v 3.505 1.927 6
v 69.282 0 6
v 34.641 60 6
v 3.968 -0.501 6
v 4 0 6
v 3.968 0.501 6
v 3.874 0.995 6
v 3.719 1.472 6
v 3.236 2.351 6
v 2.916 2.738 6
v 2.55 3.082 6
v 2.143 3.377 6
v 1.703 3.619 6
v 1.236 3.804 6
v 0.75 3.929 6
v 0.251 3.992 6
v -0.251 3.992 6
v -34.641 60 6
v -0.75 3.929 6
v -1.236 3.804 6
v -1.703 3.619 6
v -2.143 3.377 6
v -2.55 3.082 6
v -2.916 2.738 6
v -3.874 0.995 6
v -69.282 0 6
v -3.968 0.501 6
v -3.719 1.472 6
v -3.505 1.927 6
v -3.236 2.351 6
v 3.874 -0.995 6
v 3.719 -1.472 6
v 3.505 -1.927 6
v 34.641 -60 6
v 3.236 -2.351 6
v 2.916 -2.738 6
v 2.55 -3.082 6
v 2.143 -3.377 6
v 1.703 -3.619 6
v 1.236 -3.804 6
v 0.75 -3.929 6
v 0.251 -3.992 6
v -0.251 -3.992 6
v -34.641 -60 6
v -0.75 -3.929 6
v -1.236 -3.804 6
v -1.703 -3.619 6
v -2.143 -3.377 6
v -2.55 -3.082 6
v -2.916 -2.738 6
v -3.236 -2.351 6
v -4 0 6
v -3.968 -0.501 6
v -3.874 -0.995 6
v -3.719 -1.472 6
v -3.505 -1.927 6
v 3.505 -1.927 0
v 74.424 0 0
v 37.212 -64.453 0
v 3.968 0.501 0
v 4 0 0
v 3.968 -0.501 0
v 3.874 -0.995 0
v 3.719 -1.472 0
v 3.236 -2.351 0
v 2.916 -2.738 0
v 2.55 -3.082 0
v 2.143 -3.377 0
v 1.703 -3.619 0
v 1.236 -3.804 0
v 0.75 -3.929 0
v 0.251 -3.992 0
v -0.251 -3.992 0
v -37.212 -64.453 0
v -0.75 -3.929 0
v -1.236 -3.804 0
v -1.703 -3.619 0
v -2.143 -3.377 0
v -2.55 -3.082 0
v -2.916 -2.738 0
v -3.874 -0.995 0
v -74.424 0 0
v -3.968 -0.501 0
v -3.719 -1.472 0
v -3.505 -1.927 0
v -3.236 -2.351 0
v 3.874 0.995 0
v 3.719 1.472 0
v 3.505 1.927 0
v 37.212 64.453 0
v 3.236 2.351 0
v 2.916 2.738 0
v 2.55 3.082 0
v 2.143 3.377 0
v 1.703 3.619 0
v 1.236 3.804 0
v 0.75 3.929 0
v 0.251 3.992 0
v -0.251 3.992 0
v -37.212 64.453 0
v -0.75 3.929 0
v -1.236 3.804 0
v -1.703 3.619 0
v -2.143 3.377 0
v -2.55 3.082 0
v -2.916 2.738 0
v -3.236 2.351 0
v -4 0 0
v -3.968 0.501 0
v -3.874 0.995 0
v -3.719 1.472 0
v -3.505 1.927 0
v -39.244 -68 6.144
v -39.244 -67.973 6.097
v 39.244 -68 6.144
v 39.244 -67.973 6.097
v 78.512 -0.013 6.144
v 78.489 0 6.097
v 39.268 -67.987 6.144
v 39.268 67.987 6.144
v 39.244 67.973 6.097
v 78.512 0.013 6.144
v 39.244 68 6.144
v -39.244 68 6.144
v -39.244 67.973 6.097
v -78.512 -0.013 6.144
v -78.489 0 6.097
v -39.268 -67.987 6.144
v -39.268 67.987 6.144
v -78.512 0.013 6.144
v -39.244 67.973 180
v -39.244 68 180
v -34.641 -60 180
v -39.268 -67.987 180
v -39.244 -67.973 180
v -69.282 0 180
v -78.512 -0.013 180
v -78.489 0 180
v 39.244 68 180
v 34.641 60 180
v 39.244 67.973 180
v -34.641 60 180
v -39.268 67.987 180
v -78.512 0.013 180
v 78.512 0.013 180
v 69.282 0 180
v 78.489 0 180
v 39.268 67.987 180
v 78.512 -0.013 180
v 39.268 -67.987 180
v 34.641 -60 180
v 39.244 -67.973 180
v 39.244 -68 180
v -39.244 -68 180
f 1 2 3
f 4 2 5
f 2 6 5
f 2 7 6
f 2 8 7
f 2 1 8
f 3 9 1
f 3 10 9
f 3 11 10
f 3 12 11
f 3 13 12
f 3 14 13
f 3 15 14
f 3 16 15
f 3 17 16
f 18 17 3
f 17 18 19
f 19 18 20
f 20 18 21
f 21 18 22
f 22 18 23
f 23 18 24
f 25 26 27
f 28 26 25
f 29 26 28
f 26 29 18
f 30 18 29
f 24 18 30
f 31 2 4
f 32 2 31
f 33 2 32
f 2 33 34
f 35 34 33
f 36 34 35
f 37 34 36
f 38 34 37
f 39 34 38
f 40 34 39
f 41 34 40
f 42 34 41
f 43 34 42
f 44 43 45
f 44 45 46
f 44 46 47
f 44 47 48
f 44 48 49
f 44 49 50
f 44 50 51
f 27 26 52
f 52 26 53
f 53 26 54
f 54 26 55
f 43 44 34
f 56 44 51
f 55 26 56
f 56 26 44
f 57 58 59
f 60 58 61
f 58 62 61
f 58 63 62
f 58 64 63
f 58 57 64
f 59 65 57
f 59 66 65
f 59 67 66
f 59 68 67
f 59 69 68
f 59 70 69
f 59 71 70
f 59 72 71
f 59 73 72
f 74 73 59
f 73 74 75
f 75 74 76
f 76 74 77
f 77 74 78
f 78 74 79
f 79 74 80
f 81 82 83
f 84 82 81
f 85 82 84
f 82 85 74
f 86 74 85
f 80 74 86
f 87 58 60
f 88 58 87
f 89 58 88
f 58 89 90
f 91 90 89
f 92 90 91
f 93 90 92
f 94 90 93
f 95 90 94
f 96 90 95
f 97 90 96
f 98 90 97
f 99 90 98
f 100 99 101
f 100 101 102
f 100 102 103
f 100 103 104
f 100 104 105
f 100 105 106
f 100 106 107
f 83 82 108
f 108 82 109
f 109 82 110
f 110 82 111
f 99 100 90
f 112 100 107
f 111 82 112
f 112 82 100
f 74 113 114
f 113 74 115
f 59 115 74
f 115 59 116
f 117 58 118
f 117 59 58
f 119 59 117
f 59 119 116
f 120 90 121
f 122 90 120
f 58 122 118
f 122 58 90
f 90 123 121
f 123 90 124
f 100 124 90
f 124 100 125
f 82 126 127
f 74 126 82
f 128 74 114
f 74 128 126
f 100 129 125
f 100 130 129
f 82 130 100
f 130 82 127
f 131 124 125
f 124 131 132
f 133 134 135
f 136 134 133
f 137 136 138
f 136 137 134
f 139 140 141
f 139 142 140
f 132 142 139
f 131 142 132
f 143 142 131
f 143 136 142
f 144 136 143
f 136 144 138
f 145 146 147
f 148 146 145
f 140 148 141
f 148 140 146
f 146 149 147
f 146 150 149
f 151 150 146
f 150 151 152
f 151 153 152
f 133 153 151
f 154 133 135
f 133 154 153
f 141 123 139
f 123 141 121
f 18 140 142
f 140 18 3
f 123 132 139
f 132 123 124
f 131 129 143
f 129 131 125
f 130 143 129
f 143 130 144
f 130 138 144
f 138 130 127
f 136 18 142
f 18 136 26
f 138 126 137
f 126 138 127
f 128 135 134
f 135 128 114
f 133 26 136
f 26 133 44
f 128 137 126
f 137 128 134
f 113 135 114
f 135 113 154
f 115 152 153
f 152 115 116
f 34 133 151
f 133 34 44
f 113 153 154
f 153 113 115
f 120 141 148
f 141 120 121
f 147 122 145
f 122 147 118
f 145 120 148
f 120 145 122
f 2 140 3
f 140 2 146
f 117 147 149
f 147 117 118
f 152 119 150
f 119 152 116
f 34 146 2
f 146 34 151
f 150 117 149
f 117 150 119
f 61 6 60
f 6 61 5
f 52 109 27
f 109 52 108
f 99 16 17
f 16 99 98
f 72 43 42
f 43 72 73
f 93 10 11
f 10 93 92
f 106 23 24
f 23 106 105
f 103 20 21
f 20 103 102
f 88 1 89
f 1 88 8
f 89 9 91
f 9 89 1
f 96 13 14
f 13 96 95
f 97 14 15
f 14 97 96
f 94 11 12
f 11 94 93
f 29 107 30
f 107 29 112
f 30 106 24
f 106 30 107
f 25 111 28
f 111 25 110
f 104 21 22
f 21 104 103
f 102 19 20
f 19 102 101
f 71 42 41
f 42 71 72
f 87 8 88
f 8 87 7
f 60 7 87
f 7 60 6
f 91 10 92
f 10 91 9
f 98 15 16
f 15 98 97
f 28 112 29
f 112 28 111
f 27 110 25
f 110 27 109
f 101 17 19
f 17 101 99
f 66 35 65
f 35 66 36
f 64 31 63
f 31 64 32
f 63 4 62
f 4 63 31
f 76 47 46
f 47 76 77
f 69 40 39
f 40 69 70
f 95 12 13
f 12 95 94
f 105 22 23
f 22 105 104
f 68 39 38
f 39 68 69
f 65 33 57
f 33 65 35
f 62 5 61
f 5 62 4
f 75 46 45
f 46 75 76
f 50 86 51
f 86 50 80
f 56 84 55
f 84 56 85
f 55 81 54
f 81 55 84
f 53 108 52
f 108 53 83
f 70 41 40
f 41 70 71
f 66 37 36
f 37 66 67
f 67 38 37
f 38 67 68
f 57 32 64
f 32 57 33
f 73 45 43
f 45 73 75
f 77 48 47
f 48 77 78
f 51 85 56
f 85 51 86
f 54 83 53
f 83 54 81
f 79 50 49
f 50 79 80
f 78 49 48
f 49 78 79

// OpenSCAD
 // Jamison Hunter
 // hex_planter_tall
 // This is the large sized hex planter from OpenGarden
 
difference() {
union() {
difference() {
union() {
union() {
difference() {
union() {
difference() {
// generating the floor
    
translate([0, 0, 3])
cube([152, 152, 6], center = true);

// shaver 1

scale([1.125, 1.125, 1.125])
translate([0, 0, -1])
union() {

translate([0, 64, 45])
cube([55.5*sqrt(2), 8, 90], center = true );

rotate([0, 0, 60])
translate([0, 64, 45])
cube([55.5*sqrt(2), 8, 90], center = true );

rotate([0, 0, 120])
translate([0, 64, 45])
cube([55.5*sqrt(2), 8, 90], center = true );

rotate([0, 0, 180])
translate([0, 64, 45])
cube([55.5*sqrt(2), 8, 90], center = true );

rotate([0, 0, -60])
translate([0, 64, 45])
cube([55.5*sqrt(2), 8, 90], center = true );

rotate([0, 0,-120])
translate([0, 64, 45])
cube([55.5*sqrt(2), 8, 90], center = true );

}
}
}

// shaver 2

union() {
rotate([0, 0, 30])
translate([100, 0, -1])
cube([50, 90, 20], center = true);

rotate([0, 0, -30])
translate([100, 0, -1])
cube([50, 90, 20], center = true);

rotate([0, 0, 150])
translate([100, 0, -1])
cube([50, 90, 20], center = true);

rotate([0, 0, -150])
translate([100, 0, -1])
cube([50, 90, 20], center = true);

}
}
}

// walls
union() {

translate([0, 64, 90])
cube([55.5*sqrt(2), 8, 180], center = true );

rotate([0, 0, 60])
translate([0, 64, 90])
cube([55.5*sqrt(2), 8, 180], center = true );

rotate([0, 0, 120])
translate([0, 64, 90])
cube([55.5*sqrt(2), 8, 180], center = true );

rotate([0, 0, 180])
translate([0, 64, 90])
cube([55.5*sqrt(2), 8, 180], center = true );

rotate([0, 0, -60])
translate([0, 64, 90])
cube([55.5*sqrt(2), 8, 180], center = true );

rotate([0, 0,-120])
translate([0, 64, 90])
cube([55.5*sqrt(2), 8, 180], center = true );

}
}

// shaver 3
translate([0, 0, -8])
scale([1, 1, 2.5])
union() {
cylinder(r = 4, h = 130, center = true, $fn = 50);


    
}
}
}

// shaver 4


union() {
    
translate([0, -76, 0])
rotate([30, 0 ,0])
cube([100, 20, 40], center = true);
    
rotate([0, 0, 60])
translate([0, -76, 0])
rotate([30, 0 ,0])
cube([100, 20, 40], center = true);

rotate([0, 0, 120])
translate([0, -76, 0])
rotate([30, 0 ,0])
cube([100, 20, 40], center = true);

rotate([0, 0, 180])
translate([0, -76, 0])
rotate([30, 0 ,0])
cube([100, 20, 40], center = true);

rotate([0, 0, -60])
translate([0, -76, 0])
rotate([30, 0 ,0])
cube([100, 20, 40], center = true);

rotate([0, 0, -120])
translate([0, -76, 0])
rotate([30, 0 ,0])
cube([100, 20, 40], center = true);
}
}
